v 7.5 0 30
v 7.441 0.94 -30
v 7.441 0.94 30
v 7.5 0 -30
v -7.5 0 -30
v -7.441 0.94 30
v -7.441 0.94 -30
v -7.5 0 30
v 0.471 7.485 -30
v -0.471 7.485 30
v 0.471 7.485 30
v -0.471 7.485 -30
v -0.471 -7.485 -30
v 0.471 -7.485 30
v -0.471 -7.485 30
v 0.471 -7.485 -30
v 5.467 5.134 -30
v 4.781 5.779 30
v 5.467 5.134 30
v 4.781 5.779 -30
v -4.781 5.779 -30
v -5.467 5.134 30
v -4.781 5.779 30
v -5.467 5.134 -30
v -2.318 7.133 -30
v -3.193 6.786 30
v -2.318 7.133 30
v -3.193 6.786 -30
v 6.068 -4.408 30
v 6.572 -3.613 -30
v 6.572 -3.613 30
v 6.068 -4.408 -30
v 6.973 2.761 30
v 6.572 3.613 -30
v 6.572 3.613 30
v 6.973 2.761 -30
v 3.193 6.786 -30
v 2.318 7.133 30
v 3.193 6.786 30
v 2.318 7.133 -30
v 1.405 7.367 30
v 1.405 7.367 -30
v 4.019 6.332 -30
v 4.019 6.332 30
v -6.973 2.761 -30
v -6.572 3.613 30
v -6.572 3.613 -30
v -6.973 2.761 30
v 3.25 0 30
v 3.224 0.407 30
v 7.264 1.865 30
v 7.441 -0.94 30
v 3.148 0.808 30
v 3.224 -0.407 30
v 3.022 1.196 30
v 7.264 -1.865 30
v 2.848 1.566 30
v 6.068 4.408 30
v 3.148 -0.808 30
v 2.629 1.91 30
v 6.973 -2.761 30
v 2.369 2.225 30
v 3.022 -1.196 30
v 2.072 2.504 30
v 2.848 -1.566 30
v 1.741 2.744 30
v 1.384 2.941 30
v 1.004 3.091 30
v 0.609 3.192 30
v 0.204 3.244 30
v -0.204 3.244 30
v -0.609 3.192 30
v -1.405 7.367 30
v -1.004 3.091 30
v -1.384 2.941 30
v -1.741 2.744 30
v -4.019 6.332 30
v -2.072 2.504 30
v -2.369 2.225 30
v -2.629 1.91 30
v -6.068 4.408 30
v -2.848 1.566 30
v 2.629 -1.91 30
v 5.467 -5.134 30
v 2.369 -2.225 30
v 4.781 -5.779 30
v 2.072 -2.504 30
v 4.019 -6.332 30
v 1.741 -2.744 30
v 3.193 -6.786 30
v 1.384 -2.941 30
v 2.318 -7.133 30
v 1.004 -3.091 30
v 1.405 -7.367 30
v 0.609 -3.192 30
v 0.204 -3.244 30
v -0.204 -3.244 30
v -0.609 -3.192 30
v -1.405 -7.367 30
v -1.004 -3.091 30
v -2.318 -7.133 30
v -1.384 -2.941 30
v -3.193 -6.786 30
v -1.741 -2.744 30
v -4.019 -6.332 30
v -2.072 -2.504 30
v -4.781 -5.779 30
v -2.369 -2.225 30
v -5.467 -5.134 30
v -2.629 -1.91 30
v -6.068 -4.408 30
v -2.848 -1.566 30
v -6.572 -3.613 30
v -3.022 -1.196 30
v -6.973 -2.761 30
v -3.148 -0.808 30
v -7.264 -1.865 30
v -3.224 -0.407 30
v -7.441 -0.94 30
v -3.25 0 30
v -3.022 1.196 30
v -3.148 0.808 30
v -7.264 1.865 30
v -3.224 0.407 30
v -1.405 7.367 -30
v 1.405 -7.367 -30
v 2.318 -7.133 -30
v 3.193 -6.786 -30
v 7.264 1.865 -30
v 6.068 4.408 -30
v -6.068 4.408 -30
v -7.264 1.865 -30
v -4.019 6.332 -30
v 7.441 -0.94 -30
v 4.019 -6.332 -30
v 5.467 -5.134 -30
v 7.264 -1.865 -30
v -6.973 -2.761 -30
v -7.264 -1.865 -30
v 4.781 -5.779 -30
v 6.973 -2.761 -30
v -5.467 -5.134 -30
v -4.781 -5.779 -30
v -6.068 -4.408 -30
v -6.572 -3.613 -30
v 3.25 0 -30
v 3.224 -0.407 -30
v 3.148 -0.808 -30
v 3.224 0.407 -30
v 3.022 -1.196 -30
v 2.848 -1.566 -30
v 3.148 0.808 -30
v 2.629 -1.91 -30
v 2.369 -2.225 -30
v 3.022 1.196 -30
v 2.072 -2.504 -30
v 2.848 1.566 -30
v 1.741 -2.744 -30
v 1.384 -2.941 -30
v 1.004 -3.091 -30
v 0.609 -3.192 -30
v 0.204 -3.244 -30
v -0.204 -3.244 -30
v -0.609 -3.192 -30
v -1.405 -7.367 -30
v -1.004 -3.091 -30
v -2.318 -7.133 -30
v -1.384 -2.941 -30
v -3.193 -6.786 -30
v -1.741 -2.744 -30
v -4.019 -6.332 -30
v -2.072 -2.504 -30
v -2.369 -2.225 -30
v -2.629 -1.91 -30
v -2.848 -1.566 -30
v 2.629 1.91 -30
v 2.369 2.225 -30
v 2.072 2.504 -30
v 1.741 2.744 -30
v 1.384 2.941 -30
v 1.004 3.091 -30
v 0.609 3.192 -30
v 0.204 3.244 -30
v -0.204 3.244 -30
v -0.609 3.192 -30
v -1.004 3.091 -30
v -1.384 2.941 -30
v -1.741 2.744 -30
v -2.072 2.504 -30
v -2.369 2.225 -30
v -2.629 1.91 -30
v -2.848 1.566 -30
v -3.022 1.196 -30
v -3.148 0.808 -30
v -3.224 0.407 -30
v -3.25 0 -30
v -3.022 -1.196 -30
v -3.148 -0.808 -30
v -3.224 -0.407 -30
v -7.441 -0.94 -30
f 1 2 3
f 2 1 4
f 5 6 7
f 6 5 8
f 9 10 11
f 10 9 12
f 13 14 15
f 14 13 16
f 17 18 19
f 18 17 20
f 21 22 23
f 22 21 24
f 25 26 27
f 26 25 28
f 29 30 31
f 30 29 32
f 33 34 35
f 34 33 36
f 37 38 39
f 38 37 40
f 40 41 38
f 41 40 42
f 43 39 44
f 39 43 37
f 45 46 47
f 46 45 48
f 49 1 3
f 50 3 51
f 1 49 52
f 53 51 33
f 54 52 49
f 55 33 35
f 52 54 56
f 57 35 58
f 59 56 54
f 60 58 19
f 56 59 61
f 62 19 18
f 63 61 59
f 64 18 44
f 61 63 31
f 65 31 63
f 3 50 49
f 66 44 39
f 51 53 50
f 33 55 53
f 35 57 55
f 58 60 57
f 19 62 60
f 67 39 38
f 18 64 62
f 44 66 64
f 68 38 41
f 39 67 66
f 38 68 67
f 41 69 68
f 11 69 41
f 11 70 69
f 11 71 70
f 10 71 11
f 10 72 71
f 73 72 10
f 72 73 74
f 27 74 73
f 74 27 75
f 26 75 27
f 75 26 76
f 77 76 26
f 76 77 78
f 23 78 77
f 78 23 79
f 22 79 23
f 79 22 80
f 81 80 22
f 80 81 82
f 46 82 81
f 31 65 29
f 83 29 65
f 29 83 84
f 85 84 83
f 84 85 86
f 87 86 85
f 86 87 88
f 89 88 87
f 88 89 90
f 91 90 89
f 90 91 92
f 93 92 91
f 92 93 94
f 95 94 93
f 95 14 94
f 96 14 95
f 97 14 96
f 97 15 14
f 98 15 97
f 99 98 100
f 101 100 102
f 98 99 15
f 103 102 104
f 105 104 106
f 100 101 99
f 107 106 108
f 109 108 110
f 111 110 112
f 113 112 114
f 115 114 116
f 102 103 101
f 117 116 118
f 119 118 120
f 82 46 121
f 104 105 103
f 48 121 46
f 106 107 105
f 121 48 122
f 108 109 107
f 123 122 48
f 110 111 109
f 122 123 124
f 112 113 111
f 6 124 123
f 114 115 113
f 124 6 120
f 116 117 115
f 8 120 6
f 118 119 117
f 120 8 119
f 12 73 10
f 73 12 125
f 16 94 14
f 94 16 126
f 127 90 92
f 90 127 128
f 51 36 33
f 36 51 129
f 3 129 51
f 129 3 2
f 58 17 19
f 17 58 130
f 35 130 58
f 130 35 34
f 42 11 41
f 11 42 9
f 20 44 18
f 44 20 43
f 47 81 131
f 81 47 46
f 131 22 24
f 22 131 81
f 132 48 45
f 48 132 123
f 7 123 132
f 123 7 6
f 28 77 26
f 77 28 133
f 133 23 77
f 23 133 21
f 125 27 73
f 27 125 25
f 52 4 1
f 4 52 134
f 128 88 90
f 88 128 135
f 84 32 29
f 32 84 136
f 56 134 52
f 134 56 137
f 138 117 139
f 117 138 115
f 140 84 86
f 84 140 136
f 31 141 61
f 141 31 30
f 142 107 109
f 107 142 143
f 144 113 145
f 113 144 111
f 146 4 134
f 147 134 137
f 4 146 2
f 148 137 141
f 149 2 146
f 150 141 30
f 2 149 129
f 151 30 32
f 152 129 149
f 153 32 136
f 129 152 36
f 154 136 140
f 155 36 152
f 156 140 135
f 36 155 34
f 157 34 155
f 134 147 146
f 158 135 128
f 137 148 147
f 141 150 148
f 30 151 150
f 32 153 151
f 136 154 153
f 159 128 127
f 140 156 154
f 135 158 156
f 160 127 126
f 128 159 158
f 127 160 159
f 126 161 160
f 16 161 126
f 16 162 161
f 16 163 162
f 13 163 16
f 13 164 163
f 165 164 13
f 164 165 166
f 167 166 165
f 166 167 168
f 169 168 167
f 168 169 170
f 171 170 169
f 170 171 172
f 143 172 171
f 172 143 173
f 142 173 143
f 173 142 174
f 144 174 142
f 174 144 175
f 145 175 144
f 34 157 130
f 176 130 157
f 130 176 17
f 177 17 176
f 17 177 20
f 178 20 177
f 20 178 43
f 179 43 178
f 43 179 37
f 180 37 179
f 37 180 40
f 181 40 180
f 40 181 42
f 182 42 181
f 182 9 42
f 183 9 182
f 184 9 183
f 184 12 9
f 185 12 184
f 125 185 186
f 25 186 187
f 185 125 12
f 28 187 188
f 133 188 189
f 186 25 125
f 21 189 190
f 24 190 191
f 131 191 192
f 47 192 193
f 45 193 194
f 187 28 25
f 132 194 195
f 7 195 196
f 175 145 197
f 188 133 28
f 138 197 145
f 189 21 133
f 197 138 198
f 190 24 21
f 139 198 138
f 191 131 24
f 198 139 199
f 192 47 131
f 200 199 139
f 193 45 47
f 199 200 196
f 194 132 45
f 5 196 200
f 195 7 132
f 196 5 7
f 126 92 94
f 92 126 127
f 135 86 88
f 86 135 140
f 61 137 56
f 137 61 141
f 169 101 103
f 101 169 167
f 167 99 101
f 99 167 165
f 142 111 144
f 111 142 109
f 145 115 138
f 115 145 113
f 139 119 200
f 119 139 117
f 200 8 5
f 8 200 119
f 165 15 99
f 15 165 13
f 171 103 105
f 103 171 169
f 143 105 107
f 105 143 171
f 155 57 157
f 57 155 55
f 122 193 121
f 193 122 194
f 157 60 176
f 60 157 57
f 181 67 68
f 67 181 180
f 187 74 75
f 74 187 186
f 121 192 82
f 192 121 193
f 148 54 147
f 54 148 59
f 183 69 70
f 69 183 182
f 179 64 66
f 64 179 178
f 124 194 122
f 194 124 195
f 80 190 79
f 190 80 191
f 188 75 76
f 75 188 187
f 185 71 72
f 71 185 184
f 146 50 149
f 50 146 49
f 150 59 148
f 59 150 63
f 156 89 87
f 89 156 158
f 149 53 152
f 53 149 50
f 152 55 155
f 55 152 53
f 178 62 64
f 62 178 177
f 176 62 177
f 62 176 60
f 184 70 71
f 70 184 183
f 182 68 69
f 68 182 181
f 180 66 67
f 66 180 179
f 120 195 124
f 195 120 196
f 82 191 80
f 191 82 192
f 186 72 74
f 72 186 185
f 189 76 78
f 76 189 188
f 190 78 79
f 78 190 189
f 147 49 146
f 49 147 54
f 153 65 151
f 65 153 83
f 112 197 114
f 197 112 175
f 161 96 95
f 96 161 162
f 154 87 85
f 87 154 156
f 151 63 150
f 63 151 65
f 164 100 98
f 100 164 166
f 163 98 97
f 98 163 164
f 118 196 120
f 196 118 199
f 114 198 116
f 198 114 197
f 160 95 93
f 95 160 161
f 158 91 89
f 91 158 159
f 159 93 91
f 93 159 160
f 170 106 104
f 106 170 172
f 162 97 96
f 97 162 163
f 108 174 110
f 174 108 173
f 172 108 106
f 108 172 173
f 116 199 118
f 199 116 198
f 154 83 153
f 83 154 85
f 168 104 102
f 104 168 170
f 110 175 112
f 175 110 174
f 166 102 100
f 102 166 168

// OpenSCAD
$fn = 50;


difference() {
	union() {
		translate(v = [0, 0, -30.0000000000]) {
			cylinder(h = 60, r = 7.5000000000);
		}
	}
	union() {
		translate(v = [0, 0, -100.0000000000]) {
			cylinder(h = 200, r = 3.2500000000);
		}
	}
}
